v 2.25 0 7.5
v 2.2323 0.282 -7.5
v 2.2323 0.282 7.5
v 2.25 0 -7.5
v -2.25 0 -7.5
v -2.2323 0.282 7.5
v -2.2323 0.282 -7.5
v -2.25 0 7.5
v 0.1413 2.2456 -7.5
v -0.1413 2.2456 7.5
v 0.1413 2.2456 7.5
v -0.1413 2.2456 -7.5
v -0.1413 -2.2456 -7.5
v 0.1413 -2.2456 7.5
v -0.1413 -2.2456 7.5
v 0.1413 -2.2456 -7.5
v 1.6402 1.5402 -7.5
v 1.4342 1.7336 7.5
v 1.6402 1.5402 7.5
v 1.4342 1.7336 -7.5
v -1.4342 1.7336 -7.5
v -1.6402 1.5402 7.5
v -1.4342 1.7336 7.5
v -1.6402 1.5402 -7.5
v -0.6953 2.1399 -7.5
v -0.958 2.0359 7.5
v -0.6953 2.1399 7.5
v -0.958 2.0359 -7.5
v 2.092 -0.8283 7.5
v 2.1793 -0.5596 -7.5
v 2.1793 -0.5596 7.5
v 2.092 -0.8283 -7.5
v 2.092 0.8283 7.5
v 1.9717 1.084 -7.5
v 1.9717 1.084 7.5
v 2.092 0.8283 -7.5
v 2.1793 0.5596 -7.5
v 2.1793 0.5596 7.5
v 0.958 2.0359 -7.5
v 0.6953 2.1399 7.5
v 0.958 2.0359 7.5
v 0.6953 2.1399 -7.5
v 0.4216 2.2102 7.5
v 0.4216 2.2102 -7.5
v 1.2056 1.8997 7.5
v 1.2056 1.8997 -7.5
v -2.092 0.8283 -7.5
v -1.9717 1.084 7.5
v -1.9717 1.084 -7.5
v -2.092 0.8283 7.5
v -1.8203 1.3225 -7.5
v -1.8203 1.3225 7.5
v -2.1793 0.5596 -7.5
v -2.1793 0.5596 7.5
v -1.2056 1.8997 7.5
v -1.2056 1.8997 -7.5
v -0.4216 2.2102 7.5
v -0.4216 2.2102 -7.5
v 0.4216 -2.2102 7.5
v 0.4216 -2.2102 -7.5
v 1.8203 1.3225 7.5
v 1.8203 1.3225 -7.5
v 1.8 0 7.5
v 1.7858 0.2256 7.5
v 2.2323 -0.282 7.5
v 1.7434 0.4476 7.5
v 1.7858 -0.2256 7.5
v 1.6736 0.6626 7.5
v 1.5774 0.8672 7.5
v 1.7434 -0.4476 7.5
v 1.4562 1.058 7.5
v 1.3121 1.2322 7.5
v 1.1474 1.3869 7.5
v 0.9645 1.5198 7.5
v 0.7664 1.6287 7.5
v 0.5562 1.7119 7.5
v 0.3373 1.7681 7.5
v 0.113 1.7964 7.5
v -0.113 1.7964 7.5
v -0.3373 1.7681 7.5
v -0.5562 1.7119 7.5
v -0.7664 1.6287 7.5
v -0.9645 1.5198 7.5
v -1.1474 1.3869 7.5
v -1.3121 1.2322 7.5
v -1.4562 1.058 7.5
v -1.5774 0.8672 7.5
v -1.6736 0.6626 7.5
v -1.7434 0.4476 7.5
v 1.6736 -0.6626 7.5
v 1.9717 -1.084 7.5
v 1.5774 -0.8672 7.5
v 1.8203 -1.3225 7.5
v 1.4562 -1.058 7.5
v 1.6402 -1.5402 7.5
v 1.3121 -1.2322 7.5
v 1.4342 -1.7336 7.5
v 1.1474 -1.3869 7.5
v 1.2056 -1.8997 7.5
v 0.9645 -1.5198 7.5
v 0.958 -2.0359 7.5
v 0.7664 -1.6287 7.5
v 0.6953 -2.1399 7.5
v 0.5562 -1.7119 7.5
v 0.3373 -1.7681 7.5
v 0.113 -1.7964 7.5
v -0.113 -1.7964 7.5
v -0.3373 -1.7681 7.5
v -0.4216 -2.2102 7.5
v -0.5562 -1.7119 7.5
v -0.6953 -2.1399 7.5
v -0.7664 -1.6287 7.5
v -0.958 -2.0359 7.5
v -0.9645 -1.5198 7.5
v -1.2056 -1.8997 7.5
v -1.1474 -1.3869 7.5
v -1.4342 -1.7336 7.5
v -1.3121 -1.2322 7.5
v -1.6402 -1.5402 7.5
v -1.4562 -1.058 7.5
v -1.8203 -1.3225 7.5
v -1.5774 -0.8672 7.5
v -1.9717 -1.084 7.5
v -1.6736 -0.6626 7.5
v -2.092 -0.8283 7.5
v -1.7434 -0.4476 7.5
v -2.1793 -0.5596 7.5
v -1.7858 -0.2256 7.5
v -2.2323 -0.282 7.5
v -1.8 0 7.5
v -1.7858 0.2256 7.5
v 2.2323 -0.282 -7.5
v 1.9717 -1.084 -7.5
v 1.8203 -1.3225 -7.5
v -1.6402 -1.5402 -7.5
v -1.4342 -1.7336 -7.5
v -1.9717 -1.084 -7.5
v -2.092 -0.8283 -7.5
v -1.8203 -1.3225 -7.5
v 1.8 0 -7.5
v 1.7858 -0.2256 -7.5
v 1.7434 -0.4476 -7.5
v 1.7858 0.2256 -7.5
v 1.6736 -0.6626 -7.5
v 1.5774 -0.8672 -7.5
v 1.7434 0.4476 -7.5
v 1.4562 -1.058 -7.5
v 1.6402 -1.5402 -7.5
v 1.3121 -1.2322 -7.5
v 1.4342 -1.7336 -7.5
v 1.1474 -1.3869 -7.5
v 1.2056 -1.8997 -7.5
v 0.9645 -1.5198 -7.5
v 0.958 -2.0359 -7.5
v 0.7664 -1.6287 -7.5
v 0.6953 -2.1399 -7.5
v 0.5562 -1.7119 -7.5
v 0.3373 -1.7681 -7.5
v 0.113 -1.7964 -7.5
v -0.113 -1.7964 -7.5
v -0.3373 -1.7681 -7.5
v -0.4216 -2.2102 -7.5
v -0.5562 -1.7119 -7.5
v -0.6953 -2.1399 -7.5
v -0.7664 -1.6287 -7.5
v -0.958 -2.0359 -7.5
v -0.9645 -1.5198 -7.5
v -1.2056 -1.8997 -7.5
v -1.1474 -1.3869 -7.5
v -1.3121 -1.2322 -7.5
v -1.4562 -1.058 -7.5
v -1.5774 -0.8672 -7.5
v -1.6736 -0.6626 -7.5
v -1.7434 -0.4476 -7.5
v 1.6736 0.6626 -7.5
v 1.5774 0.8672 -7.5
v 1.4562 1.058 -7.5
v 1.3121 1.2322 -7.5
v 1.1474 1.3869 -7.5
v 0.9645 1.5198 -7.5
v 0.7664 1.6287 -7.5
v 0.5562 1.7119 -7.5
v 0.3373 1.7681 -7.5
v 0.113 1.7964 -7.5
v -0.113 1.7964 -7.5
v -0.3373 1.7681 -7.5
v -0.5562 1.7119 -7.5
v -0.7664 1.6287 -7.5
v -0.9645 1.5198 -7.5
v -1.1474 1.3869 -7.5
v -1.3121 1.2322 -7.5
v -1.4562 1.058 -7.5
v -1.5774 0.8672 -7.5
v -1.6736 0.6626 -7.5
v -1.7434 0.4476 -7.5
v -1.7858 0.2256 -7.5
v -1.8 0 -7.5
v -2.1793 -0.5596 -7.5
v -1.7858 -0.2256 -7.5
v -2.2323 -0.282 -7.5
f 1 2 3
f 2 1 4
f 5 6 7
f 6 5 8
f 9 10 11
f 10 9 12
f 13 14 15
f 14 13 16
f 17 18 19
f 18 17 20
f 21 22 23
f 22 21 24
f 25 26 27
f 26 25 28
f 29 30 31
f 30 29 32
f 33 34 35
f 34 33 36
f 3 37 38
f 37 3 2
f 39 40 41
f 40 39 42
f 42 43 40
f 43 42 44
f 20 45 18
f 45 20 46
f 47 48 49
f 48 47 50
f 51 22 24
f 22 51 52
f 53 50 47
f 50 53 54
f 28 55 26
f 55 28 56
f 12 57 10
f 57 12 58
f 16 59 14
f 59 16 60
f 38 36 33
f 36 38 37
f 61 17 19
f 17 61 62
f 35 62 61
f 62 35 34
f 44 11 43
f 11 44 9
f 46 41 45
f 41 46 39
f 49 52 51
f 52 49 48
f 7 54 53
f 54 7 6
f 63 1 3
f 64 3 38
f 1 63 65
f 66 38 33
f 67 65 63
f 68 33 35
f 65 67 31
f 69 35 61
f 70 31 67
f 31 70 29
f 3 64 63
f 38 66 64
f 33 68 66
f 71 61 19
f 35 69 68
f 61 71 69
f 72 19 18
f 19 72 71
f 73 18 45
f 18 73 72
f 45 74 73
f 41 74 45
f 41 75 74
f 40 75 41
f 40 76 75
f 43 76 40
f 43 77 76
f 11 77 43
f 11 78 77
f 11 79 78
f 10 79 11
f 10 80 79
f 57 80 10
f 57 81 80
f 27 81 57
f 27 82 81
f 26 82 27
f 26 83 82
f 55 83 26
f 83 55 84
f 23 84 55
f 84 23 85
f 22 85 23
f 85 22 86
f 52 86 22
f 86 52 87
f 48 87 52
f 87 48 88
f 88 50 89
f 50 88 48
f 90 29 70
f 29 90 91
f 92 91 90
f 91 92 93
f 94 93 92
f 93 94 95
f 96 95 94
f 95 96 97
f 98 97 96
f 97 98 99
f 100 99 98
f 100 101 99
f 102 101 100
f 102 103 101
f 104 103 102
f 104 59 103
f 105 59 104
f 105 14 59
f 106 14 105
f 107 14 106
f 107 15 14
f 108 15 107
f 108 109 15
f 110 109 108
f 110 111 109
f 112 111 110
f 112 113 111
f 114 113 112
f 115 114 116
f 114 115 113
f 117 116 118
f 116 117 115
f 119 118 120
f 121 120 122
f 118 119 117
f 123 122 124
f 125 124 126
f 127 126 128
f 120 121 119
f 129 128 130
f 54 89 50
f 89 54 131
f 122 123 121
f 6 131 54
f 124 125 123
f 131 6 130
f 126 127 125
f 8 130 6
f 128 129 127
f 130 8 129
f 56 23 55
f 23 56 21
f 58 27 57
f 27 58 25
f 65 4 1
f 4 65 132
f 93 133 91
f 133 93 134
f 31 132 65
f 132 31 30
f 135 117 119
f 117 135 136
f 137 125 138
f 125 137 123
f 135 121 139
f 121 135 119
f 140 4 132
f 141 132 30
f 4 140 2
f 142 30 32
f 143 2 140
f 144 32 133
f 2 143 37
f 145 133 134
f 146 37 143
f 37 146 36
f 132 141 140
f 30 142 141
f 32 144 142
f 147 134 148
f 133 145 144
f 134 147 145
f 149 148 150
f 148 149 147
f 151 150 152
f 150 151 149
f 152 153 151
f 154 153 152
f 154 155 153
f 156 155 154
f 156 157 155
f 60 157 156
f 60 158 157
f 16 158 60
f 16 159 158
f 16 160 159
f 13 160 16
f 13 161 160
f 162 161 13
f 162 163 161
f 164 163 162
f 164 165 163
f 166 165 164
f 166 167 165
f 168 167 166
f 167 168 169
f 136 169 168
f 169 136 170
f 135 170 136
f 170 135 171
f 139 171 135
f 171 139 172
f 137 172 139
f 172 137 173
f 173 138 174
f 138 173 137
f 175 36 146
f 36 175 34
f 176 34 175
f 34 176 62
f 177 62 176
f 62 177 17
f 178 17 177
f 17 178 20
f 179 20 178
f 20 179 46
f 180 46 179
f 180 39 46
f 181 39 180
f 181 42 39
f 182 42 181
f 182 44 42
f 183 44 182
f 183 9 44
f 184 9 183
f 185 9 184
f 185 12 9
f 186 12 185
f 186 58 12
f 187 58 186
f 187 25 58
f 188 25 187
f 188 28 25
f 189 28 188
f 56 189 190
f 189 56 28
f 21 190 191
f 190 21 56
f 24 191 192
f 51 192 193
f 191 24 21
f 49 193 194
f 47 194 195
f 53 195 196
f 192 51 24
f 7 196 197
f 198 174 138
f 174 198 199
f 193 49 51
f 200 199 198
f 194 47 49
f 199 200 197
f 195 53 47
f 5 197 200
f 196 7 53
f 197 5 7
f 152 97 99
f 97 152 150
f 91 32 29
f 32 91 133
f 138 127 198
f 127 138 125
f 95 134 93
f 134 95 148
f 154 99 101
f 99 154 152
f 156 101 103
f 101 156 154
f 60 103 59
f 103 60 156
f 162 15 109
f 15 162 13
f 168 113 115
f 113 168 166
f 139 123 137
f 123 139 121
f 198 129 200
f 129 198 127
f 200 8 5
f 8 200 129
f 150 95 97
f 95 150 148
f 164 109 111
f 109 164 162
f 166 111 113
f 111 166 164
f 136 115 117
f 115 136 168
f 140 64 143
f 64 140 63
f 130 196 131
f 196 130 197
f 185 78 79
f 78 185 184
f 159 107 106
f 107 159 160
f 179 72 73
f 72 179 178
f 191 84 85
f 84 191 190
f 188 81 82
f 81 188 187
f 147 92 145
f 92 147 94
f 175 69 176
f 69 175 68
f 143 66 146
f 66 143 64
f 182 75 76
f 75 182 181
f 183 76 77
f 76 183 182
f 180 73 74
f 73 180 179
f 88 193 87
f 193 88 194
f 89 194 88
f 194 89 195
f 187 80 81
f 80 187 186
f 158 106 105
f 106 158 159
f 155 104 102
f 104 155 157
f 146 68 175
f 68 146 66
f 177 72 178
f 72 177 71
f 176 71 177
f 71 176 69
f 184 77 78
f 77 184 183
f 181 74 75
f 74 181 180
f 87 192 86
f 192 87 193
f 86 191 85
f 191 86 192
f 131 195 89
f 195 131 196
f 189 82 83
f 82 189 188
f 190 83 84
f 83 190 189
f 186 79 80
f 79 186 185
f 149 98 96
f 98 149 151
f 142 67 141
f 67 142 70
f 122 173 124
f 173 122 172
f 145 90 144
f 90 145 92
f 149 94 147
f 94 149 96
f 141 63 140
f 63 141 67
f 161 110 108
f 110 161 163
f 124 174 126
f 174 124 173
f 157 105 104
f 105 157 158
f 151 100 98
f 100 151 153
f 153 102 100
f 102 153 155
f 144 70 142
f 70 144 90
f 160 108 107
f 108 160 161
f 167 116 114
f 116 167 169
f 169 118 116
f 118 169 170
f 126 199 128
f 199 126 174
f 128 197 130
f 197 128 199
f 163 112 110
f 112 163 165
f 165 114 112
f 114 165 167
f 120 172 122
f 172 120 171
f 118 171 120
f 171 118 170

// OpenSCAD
$fn = 50;


difference() {
	union() {
		translate(v = [0, 0, -7.5000000000]) {
			cylinder(h = 15, r = 2.2500000000);
		}
	}
	union() {
		translate(v = [0, 0, -100.0000000000]) {
			cylinder(h = 200, r = 1.8000000000);
		}
	}
}
